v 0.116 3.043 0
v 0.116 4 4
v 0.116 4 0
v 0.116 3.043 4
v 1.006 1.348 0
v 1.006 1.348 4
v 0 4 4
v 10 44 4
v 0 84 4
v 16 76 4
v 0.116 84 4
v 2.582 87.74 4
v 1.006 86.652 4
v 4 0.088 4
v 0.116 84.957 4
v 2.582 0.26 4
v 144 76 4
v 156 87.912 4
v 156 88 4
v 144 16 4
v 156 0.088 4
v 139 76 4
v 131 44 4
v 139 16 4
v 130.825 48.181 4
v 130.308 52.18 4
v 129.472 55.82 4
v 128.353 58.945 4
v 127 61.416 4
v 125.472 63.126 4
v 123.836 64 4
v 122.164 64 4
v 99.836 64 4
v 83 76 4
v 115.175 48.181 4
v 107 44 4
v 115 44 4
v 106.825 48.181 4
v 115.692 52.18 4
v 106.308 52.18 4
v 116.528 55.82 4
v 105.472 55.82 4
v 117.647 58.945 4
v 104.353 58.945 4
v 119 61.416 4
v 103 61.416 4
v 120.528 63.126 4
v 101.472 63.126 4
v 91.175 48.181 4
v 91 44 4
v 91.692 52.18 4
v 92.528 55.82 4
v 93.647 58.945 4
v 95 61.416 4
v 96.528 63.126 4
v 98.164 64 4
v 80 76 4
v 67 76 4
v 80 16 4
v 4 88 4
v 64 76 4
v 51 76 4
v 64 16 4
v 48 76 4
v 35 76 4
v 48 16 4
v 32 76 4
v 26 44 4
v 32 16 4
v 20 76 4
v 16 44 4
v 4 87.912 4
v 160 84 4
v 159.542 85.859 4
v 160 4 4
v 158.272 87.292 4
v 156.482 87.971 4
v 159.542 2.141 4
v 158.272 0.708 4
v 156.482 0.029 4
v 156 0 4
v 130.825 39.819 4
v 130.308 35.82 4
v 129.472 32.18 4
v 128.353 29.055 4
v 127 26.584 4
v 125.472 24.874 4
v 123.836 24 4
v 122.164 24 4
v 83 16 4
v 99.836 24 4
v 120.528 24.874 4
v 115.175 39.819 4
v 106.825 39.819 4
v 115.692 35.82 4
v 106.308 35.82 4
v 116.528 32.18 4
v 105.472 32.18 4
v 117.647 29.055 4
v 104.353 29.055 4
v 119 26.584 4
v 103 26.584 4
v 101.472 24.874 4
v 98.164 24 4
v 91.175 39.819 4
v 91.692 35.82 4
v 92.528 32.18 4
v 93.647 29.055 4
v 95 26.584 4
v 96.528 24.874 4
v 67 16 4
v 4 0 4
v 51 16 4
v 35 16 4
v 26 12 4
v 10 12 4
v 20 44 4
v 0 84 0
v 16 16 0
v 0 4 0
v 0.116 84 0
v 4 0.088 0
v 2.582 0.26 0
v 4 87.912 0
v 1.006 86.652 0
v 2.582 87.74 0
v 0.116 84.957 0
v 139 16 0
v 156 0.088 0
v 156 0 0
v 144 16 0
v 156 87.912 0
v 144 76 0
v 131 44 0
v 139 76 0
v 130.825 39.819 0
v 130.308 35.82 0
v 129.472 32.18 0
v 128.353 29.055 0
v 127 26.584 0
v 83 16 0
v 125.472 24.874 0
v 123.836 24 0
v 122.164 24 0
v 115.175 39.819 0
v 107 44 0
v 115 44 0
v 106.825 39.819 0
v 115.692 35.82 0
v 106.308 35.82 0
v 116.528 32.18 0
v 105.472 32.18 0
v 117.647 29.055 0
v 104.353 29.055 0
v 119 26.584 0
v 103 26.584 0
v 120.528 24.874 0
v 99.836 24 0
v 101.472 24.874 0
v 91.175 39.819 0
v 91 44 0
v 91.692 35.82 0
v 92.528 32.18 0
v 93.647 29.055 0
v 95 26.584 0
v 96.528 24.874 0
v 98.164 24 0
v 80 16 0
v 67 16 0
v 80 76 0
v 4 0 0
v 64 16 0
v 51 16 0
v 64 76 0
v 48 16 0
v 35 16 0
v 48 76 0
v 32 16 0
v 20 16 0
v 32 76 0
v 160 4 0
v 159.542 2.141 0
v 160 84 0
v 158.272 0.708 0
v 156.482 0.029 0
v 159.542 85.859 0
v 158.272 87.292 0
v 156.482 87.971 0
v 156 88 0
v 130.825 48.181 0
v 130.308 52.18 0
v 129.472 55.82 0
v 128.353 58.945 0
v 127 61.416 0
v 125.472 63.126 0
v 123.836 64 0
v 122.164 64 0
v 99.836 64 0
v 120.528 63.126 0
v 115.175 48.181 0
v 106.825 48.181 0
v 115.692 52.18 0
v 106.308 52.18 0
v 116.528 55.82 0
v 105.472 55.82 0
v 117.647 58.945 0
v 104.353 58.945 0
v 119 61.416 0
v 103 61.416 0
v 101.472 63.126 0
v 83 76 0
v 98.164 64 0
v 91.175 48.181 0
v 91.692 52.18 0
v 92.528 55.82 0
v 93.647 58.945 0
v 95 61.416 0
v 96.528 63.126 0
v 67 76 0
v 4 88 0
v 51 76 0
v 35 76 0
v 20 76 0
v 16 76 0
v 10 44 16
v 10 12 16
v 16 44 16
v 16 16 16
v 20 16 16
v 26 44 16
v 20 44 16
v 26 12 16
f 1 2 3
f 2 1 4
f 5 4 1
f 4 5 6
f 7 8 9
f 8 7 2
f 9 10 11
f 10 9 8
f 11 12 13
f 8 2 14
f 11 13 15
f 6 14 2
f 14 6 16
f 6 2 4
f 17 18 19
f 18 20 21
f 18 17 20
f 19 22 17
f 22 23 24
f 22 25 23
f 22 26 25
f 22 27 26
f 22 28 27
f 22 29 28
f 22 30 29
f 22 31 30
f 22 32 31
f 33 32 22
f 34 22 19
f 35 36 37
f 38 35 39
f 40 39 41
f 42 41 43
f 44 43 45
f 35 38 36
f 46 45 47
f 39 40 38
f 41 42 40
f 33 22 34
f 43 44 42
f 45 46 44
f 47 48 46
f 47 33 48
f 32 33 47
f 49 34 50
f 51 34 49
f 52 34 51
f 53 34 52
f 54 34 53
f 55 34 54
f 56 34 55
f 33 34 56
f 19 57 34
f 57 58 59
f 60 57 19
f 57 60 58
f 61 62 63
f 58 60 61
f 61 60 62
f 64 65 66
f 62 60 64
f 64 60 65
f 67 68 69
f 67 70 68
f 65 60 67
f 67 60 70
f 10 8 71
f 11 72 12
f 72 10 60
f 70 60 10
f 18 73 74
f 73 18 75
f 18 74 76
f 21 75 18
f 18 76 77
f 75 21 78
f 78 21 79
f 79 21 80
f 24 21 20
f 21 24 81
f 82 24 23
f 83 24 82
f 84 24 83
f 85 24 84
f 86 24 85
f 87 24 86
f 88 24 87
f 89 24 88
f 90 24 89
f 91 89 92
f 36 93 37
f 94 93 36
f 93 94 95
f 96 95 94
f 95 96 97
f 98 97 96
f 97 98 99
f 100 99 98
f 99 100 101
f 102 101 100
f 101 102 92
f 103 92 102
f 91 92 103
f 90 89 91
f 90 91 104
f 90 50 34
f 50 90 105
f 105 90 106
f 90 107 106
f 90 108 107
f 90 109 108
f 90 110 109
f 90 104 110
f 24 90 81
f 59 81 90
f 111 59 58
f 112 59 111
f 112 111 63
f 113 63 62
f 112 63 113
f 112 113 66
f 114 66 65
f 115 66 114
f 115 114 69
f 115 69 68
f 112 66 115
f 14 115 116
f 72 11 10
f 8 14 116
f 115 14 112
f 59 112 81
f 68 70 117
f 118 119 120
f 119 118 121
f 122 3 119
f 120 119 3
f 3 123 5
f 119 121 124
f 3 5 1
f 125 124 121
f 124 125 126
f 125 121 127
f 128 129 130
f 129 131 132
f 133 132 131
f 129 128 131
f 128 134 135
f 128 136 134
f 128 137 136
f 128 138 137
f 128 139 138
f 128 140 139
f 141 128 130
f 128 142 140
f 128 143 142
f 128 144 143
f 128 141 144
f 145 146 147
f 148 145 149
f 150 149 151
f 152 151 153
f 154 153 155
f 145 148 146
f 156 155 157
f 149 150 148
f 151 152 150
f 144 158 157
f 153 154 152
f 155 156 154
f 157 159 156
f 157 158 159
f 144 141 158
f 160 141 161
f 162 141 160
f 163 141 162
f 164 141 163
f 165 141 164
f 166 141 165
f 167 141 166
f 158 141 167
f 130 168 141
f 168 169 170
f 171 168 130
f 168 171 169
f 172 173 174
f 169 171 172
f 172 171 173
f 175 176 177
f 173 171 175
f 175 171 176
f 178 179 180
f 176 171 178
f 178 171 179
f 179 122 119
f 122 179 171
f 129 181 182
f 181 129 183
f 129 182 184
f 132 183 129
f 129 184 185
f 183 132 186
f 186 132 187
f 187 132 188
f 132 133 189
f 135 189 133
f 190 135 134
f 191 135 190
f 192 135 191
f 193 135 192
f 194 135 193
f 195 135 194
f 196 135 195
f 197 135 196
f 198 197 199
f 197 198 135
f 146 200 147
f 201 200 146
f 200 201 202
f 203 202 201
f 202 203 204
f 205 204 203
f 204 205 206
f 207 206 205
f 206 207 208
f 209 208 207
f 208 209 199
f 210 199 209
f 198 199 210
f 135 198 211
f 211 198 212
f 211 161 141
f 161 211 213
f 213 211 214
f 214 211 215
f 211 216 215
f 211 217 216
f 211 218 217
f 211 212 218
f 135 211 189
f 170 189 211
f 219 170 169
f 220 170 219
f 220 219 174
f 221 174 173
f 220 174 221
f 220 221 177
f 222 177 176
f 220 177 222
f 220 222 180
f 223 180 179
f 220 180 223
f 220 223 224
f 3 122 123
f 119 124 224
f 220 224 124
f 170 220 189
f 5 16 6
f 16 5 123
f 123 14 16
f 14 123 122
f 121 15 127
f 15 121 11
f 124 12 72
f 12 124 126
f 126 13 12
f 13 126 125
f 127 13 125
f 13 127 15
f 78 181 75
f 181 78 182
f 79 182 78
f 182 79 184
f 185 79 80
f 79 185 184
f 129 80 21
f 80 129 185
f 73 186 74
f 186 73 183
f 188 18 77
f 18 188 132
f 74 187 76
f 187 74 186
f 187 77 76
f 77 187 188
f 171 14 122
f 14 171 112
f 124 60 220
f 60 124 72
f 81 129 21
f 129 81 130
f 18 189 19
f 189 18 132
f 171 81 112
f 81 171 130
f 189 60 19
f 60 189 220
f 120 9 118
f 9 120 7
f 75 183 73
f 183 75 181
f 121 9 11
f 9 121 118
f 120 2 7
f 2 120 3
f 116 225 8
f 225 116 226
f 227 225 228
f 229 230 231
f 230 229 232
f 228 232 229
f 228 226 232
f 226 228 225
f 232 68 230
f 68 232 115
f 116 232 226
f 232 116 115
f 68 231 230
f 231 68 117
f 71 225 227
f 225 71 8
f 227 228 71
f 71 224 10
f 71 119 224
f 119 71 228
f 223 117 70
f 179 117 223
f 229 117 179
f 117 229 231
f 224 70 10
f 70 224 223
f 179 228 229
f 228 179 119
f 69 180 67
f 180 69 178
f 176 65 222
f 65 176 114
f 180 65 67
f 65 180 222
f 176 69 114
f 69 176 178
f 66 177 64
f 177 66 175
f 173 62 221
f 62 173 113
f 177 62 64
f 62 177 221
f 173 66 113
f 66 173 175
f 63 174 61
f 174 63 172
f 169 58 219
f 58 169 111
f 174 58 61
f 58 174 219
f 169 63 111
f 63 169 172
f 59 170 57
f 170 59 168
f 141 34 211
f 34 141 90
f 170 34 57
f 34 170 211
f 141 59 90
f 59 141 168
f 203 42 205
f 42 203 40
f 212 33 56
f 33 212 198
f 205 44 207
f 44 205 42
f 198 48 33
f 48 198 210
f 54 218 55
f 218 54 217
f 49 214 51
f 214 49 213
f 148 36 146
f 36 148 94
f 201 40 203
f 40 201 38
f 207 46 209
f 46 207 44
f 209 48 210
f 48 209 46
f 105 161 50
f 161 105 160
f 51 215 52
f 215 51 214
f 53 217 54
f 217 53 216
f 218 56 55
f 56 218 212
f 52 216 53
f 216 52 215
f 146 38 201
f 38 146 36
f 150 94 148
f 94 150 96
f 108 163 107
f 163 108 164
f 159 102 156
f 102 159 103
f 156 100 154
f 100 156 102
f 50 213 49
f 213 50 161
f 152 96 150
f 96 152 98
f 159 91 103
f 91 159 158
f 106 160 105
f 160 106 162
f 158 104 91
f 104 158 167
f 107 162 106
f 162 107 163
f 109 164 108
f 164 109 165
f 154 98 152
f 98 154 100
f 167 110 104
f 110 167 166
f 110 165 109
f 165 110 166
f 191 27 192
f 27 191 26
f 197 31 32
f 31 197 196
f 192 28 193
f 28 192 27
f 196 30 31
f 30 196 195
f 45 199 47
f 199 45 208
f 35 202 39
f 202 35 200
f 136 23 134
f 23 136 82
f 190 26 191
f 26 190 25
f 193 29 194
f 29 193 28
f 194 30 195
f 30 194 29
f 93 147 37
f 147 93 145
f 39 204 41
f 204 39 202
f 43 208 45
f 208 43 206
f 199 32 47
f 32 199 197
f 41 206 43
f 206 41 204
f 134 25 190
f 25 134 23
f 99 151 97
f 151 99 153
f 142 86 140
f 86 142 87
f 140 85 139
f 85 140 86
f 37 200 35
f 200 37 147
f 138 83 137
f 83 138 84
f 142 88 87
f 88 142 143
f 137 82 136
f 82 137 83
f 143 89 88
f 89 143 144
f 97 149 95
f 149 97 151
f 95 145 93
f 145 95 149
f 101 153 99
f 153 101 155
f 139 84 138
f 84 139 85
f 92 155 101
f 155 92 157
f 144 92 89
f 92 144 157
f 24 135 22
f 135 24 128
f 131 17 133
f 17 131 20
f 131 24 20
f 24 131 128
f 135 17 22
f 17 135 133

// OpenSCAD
// file: utils.scad
use <MCAD/boxes.scad>

BIG = [1024, 1024, 1024];

module mark(name, height, size = 2) {
	linear_extrude(height, center = false)	text(name, size = size);
}
module hole(w, h) {
	translate([w / 2, h / 2, 0])		roundedBox(size=[w, h, 1024], radius = w / 4, sidesonly = true);
}
module ellipsis(w, h) {
	translate([w / 2, h / 2, 0])
		resize([w, h, 1024])
			cylinder(1024, 1024, 1024);
}
module cornerHole(base, m, in, out, height) {
	delta = (out - in) / 2;
		translate([m,					m,					0])	ellipsis(in, in);
		translate([base[0] - m,	m,					0])	ellipsis(in, in);
		translate([base[0] - m,	base[1] - m,		0])	ellipsis(in, in);
		translate([m,					base[1] - m,		0])	ellipsis(in, in);

		translate([m - delta,					m - delta,					height])	ellipsis(out, out);
		translate([base[0] - m  - delta,	m - delta,					height])	ellipsis(out, out);
		translate([base[0] - m  - delta,	base[1] - m - delta,	height])	ellipsis(out, out);
		translate([m - delta,					base[1] - m - delta,	height])	ellipsis(out, out);
}
module lineBox(outter = [100, 100, 100], t = 2) {
	size = outter - [t*2, t*2, t*2];
	center = false;

	translate([t, t, t])	{
		
	// x
	translate([0, 0, 0])						rotate([0, 90, 0])		cylinder(h = size[0], r = t, center = center);
	translate([0, size[1], 0])			rotate([0, 90, 0])		cylinder(h = size[0], r = t, center = center);
	translate([0, size[1], size[2]])	rotate([0, 90, 0])		cylinder(h = size[0], r = t, center = center);
	translate([0, 0, size[2]])			rotate([0, 90, 0])		cylinder(h = size[0], r = t, center = center);

	// y
	translate([0, 0, 0])						rotate([270, 0, 0])		cylinder(h = size[1], r = t, center = center);
	translate([size[0], 0, 0])			rotate([270, 0, 0])		cylinder(h = size[1], r = t, center = center);
	translate([size[0], 0, size[2]])	rotate([270, 0, 0])		cylinder(h = size[1], r = t, center = center);
	translate([0, 0, size[2]])			rotate([270, 0, 0])		cylinder(h = size[1], r = t, center = center);

	// z
	translate([0, 0, 0])						rotate([0, 0, 0])		cylinder(h = size[2], r = t, center = center);
	translate([size[0], 0, 0])			rotate([0, 0, 0])		cylinder(h = size[2], r = t, center = center);
	translate([size[0], size[1], 0])	rotate([0, 0, 0])		cylinder(h = size[2], r = t, center = center);
	translate([0, size[1], 0])	rotate([0, 0, 0])				cylinder(h = size[2], r = t, center = center);
	}
}
module hide(show = 0) {
	if (show > 0) children();
	else scale([0, 0, 0])	children();
}

module t() {
	c = [0.5, 0.5, 0.5, 0.5];
	d = [0.5, 0.5, 0.0, 0.5];
	
	color(c)	difference() {
		cube([4, 16, 2]);
		translate([2, -2, -1])	cube([4, 4, 4]);
	}
	color(d)	translate([8, 0, 0])	cube([16, 4, 2]);
}

module test(b) {
	
	c = [0.5, 0.5, 0.5, 0.5];
	d = [0.5, 0.5, 0.0, 0.5];
	
	color(c)	difference() {
		cube(b);
		translate([-BIG[0]+b[1]/2, b[1]/2, -BIG[2] / 2])	cube(BIG);
		//translate([b[0]-b[1]/2, b[1]/2, -1])	cube([b[1], b[1], b[2]*2]);
	}
}
		//translate([-BIG[0]+16, 16, 0])	cube(BIG);
test([16, 4, 2]);
//cube(BIG);
// main file
use <MCAD/boxes.scad>
use <utils.scad>

PALETTE = [
	[0.3, 0.1, 0.0, 0.5],	//	갈색, 칼손잡이
	[0.5, 0.5, 0.5, 0.5],	//	회색, 칼날
	[0.9, 0.9, 0.9, 1.0],	//	흰색, 상판
	[0.0, 0.0, 0.9, 0.5],	//	파랑
	[0.0, 0.0, 0.0, 0.0]	//	검정 투명, 호환성 예약
];

// 리트랙션을 줄일려면, 각진선이 유리하다
module hole(w, h) {
	translate([w / 2, h / 2, 0])
		//roundedBox(size=[w, h, 1024], radius = w / 4, sidesonly = true);
		cube([w, h, 1024], center = true);
}

// [가로, 세로, 높이], 홈너비
// 리트랙션을 줄일려면, 각진선이 유리하다
module hilt(base, r) {
	translate([base[0] / 2, base[1] / 2, base[2] / 2])
		//roundedBox(size=base, radius = r, sidesonly = true);
		cube([base[0], base[1], base[2]], center = true);
}

function landscapeSize()  = [160, 88, 4];
module landscape() {
	base =  landscapeSize();	//	상판
	t = base[2];		//	thick 껍질 두께
	m = 16;	//	margin 여유
	HILT = [16, 32, 16];	//	손잡이

	difference() {
		union() {
			//	상판
			color(c=PALETTE[2])		translate([base[0] / 2, base[1] / 2, t / 2])		roundedBox(size=base, radius = m / 4, sidesonly = true);
			
			//	서명
			//color(c=PALETTE[1])		translate([base[0] - m / 2 - 2, m / 4, t])		mark("andold", 0.2, 1);

			//	손잡이
			translate([0, 0, 0])		color(c=PALETTE[0])		translate([m - HILT[0]/ 2 + 4 / 2, m - 4, 0])		hilt(HILT, 4);
		}
		
		translate([0, 0, 0]) {
			//	식도
			translate([m, m, 0])			hole(4, 60);
			translate([m + 16, m, 0])	hole(3, 60);

			// 과도
			translate([m + 32, m])		hole(3, 60);
			translate([m + 48, m])		hole(3, 60);

			// 빵칼
			translate([m + 64, m])	hole(3, 60);

			// 가위
			scissor = [16, 40];
			translate([base[0] - m - 5 - 48, base[1] / 2 - scissor[1] / 2, -1])		ellipsis(16, 40);
			translate([base[0] - m - 5 - 24, base[1] / 2 - scissor[1] / 2, -1])		ellipsis(16, 40);
			
			translate([base[0] - m - 5, m, 0])	hole(5, 60);
			// 여유
		}

		// 모서리 구멍
		//cornerHole(base, m / 2, 2, 4, 2);
	}
}
landscape();
